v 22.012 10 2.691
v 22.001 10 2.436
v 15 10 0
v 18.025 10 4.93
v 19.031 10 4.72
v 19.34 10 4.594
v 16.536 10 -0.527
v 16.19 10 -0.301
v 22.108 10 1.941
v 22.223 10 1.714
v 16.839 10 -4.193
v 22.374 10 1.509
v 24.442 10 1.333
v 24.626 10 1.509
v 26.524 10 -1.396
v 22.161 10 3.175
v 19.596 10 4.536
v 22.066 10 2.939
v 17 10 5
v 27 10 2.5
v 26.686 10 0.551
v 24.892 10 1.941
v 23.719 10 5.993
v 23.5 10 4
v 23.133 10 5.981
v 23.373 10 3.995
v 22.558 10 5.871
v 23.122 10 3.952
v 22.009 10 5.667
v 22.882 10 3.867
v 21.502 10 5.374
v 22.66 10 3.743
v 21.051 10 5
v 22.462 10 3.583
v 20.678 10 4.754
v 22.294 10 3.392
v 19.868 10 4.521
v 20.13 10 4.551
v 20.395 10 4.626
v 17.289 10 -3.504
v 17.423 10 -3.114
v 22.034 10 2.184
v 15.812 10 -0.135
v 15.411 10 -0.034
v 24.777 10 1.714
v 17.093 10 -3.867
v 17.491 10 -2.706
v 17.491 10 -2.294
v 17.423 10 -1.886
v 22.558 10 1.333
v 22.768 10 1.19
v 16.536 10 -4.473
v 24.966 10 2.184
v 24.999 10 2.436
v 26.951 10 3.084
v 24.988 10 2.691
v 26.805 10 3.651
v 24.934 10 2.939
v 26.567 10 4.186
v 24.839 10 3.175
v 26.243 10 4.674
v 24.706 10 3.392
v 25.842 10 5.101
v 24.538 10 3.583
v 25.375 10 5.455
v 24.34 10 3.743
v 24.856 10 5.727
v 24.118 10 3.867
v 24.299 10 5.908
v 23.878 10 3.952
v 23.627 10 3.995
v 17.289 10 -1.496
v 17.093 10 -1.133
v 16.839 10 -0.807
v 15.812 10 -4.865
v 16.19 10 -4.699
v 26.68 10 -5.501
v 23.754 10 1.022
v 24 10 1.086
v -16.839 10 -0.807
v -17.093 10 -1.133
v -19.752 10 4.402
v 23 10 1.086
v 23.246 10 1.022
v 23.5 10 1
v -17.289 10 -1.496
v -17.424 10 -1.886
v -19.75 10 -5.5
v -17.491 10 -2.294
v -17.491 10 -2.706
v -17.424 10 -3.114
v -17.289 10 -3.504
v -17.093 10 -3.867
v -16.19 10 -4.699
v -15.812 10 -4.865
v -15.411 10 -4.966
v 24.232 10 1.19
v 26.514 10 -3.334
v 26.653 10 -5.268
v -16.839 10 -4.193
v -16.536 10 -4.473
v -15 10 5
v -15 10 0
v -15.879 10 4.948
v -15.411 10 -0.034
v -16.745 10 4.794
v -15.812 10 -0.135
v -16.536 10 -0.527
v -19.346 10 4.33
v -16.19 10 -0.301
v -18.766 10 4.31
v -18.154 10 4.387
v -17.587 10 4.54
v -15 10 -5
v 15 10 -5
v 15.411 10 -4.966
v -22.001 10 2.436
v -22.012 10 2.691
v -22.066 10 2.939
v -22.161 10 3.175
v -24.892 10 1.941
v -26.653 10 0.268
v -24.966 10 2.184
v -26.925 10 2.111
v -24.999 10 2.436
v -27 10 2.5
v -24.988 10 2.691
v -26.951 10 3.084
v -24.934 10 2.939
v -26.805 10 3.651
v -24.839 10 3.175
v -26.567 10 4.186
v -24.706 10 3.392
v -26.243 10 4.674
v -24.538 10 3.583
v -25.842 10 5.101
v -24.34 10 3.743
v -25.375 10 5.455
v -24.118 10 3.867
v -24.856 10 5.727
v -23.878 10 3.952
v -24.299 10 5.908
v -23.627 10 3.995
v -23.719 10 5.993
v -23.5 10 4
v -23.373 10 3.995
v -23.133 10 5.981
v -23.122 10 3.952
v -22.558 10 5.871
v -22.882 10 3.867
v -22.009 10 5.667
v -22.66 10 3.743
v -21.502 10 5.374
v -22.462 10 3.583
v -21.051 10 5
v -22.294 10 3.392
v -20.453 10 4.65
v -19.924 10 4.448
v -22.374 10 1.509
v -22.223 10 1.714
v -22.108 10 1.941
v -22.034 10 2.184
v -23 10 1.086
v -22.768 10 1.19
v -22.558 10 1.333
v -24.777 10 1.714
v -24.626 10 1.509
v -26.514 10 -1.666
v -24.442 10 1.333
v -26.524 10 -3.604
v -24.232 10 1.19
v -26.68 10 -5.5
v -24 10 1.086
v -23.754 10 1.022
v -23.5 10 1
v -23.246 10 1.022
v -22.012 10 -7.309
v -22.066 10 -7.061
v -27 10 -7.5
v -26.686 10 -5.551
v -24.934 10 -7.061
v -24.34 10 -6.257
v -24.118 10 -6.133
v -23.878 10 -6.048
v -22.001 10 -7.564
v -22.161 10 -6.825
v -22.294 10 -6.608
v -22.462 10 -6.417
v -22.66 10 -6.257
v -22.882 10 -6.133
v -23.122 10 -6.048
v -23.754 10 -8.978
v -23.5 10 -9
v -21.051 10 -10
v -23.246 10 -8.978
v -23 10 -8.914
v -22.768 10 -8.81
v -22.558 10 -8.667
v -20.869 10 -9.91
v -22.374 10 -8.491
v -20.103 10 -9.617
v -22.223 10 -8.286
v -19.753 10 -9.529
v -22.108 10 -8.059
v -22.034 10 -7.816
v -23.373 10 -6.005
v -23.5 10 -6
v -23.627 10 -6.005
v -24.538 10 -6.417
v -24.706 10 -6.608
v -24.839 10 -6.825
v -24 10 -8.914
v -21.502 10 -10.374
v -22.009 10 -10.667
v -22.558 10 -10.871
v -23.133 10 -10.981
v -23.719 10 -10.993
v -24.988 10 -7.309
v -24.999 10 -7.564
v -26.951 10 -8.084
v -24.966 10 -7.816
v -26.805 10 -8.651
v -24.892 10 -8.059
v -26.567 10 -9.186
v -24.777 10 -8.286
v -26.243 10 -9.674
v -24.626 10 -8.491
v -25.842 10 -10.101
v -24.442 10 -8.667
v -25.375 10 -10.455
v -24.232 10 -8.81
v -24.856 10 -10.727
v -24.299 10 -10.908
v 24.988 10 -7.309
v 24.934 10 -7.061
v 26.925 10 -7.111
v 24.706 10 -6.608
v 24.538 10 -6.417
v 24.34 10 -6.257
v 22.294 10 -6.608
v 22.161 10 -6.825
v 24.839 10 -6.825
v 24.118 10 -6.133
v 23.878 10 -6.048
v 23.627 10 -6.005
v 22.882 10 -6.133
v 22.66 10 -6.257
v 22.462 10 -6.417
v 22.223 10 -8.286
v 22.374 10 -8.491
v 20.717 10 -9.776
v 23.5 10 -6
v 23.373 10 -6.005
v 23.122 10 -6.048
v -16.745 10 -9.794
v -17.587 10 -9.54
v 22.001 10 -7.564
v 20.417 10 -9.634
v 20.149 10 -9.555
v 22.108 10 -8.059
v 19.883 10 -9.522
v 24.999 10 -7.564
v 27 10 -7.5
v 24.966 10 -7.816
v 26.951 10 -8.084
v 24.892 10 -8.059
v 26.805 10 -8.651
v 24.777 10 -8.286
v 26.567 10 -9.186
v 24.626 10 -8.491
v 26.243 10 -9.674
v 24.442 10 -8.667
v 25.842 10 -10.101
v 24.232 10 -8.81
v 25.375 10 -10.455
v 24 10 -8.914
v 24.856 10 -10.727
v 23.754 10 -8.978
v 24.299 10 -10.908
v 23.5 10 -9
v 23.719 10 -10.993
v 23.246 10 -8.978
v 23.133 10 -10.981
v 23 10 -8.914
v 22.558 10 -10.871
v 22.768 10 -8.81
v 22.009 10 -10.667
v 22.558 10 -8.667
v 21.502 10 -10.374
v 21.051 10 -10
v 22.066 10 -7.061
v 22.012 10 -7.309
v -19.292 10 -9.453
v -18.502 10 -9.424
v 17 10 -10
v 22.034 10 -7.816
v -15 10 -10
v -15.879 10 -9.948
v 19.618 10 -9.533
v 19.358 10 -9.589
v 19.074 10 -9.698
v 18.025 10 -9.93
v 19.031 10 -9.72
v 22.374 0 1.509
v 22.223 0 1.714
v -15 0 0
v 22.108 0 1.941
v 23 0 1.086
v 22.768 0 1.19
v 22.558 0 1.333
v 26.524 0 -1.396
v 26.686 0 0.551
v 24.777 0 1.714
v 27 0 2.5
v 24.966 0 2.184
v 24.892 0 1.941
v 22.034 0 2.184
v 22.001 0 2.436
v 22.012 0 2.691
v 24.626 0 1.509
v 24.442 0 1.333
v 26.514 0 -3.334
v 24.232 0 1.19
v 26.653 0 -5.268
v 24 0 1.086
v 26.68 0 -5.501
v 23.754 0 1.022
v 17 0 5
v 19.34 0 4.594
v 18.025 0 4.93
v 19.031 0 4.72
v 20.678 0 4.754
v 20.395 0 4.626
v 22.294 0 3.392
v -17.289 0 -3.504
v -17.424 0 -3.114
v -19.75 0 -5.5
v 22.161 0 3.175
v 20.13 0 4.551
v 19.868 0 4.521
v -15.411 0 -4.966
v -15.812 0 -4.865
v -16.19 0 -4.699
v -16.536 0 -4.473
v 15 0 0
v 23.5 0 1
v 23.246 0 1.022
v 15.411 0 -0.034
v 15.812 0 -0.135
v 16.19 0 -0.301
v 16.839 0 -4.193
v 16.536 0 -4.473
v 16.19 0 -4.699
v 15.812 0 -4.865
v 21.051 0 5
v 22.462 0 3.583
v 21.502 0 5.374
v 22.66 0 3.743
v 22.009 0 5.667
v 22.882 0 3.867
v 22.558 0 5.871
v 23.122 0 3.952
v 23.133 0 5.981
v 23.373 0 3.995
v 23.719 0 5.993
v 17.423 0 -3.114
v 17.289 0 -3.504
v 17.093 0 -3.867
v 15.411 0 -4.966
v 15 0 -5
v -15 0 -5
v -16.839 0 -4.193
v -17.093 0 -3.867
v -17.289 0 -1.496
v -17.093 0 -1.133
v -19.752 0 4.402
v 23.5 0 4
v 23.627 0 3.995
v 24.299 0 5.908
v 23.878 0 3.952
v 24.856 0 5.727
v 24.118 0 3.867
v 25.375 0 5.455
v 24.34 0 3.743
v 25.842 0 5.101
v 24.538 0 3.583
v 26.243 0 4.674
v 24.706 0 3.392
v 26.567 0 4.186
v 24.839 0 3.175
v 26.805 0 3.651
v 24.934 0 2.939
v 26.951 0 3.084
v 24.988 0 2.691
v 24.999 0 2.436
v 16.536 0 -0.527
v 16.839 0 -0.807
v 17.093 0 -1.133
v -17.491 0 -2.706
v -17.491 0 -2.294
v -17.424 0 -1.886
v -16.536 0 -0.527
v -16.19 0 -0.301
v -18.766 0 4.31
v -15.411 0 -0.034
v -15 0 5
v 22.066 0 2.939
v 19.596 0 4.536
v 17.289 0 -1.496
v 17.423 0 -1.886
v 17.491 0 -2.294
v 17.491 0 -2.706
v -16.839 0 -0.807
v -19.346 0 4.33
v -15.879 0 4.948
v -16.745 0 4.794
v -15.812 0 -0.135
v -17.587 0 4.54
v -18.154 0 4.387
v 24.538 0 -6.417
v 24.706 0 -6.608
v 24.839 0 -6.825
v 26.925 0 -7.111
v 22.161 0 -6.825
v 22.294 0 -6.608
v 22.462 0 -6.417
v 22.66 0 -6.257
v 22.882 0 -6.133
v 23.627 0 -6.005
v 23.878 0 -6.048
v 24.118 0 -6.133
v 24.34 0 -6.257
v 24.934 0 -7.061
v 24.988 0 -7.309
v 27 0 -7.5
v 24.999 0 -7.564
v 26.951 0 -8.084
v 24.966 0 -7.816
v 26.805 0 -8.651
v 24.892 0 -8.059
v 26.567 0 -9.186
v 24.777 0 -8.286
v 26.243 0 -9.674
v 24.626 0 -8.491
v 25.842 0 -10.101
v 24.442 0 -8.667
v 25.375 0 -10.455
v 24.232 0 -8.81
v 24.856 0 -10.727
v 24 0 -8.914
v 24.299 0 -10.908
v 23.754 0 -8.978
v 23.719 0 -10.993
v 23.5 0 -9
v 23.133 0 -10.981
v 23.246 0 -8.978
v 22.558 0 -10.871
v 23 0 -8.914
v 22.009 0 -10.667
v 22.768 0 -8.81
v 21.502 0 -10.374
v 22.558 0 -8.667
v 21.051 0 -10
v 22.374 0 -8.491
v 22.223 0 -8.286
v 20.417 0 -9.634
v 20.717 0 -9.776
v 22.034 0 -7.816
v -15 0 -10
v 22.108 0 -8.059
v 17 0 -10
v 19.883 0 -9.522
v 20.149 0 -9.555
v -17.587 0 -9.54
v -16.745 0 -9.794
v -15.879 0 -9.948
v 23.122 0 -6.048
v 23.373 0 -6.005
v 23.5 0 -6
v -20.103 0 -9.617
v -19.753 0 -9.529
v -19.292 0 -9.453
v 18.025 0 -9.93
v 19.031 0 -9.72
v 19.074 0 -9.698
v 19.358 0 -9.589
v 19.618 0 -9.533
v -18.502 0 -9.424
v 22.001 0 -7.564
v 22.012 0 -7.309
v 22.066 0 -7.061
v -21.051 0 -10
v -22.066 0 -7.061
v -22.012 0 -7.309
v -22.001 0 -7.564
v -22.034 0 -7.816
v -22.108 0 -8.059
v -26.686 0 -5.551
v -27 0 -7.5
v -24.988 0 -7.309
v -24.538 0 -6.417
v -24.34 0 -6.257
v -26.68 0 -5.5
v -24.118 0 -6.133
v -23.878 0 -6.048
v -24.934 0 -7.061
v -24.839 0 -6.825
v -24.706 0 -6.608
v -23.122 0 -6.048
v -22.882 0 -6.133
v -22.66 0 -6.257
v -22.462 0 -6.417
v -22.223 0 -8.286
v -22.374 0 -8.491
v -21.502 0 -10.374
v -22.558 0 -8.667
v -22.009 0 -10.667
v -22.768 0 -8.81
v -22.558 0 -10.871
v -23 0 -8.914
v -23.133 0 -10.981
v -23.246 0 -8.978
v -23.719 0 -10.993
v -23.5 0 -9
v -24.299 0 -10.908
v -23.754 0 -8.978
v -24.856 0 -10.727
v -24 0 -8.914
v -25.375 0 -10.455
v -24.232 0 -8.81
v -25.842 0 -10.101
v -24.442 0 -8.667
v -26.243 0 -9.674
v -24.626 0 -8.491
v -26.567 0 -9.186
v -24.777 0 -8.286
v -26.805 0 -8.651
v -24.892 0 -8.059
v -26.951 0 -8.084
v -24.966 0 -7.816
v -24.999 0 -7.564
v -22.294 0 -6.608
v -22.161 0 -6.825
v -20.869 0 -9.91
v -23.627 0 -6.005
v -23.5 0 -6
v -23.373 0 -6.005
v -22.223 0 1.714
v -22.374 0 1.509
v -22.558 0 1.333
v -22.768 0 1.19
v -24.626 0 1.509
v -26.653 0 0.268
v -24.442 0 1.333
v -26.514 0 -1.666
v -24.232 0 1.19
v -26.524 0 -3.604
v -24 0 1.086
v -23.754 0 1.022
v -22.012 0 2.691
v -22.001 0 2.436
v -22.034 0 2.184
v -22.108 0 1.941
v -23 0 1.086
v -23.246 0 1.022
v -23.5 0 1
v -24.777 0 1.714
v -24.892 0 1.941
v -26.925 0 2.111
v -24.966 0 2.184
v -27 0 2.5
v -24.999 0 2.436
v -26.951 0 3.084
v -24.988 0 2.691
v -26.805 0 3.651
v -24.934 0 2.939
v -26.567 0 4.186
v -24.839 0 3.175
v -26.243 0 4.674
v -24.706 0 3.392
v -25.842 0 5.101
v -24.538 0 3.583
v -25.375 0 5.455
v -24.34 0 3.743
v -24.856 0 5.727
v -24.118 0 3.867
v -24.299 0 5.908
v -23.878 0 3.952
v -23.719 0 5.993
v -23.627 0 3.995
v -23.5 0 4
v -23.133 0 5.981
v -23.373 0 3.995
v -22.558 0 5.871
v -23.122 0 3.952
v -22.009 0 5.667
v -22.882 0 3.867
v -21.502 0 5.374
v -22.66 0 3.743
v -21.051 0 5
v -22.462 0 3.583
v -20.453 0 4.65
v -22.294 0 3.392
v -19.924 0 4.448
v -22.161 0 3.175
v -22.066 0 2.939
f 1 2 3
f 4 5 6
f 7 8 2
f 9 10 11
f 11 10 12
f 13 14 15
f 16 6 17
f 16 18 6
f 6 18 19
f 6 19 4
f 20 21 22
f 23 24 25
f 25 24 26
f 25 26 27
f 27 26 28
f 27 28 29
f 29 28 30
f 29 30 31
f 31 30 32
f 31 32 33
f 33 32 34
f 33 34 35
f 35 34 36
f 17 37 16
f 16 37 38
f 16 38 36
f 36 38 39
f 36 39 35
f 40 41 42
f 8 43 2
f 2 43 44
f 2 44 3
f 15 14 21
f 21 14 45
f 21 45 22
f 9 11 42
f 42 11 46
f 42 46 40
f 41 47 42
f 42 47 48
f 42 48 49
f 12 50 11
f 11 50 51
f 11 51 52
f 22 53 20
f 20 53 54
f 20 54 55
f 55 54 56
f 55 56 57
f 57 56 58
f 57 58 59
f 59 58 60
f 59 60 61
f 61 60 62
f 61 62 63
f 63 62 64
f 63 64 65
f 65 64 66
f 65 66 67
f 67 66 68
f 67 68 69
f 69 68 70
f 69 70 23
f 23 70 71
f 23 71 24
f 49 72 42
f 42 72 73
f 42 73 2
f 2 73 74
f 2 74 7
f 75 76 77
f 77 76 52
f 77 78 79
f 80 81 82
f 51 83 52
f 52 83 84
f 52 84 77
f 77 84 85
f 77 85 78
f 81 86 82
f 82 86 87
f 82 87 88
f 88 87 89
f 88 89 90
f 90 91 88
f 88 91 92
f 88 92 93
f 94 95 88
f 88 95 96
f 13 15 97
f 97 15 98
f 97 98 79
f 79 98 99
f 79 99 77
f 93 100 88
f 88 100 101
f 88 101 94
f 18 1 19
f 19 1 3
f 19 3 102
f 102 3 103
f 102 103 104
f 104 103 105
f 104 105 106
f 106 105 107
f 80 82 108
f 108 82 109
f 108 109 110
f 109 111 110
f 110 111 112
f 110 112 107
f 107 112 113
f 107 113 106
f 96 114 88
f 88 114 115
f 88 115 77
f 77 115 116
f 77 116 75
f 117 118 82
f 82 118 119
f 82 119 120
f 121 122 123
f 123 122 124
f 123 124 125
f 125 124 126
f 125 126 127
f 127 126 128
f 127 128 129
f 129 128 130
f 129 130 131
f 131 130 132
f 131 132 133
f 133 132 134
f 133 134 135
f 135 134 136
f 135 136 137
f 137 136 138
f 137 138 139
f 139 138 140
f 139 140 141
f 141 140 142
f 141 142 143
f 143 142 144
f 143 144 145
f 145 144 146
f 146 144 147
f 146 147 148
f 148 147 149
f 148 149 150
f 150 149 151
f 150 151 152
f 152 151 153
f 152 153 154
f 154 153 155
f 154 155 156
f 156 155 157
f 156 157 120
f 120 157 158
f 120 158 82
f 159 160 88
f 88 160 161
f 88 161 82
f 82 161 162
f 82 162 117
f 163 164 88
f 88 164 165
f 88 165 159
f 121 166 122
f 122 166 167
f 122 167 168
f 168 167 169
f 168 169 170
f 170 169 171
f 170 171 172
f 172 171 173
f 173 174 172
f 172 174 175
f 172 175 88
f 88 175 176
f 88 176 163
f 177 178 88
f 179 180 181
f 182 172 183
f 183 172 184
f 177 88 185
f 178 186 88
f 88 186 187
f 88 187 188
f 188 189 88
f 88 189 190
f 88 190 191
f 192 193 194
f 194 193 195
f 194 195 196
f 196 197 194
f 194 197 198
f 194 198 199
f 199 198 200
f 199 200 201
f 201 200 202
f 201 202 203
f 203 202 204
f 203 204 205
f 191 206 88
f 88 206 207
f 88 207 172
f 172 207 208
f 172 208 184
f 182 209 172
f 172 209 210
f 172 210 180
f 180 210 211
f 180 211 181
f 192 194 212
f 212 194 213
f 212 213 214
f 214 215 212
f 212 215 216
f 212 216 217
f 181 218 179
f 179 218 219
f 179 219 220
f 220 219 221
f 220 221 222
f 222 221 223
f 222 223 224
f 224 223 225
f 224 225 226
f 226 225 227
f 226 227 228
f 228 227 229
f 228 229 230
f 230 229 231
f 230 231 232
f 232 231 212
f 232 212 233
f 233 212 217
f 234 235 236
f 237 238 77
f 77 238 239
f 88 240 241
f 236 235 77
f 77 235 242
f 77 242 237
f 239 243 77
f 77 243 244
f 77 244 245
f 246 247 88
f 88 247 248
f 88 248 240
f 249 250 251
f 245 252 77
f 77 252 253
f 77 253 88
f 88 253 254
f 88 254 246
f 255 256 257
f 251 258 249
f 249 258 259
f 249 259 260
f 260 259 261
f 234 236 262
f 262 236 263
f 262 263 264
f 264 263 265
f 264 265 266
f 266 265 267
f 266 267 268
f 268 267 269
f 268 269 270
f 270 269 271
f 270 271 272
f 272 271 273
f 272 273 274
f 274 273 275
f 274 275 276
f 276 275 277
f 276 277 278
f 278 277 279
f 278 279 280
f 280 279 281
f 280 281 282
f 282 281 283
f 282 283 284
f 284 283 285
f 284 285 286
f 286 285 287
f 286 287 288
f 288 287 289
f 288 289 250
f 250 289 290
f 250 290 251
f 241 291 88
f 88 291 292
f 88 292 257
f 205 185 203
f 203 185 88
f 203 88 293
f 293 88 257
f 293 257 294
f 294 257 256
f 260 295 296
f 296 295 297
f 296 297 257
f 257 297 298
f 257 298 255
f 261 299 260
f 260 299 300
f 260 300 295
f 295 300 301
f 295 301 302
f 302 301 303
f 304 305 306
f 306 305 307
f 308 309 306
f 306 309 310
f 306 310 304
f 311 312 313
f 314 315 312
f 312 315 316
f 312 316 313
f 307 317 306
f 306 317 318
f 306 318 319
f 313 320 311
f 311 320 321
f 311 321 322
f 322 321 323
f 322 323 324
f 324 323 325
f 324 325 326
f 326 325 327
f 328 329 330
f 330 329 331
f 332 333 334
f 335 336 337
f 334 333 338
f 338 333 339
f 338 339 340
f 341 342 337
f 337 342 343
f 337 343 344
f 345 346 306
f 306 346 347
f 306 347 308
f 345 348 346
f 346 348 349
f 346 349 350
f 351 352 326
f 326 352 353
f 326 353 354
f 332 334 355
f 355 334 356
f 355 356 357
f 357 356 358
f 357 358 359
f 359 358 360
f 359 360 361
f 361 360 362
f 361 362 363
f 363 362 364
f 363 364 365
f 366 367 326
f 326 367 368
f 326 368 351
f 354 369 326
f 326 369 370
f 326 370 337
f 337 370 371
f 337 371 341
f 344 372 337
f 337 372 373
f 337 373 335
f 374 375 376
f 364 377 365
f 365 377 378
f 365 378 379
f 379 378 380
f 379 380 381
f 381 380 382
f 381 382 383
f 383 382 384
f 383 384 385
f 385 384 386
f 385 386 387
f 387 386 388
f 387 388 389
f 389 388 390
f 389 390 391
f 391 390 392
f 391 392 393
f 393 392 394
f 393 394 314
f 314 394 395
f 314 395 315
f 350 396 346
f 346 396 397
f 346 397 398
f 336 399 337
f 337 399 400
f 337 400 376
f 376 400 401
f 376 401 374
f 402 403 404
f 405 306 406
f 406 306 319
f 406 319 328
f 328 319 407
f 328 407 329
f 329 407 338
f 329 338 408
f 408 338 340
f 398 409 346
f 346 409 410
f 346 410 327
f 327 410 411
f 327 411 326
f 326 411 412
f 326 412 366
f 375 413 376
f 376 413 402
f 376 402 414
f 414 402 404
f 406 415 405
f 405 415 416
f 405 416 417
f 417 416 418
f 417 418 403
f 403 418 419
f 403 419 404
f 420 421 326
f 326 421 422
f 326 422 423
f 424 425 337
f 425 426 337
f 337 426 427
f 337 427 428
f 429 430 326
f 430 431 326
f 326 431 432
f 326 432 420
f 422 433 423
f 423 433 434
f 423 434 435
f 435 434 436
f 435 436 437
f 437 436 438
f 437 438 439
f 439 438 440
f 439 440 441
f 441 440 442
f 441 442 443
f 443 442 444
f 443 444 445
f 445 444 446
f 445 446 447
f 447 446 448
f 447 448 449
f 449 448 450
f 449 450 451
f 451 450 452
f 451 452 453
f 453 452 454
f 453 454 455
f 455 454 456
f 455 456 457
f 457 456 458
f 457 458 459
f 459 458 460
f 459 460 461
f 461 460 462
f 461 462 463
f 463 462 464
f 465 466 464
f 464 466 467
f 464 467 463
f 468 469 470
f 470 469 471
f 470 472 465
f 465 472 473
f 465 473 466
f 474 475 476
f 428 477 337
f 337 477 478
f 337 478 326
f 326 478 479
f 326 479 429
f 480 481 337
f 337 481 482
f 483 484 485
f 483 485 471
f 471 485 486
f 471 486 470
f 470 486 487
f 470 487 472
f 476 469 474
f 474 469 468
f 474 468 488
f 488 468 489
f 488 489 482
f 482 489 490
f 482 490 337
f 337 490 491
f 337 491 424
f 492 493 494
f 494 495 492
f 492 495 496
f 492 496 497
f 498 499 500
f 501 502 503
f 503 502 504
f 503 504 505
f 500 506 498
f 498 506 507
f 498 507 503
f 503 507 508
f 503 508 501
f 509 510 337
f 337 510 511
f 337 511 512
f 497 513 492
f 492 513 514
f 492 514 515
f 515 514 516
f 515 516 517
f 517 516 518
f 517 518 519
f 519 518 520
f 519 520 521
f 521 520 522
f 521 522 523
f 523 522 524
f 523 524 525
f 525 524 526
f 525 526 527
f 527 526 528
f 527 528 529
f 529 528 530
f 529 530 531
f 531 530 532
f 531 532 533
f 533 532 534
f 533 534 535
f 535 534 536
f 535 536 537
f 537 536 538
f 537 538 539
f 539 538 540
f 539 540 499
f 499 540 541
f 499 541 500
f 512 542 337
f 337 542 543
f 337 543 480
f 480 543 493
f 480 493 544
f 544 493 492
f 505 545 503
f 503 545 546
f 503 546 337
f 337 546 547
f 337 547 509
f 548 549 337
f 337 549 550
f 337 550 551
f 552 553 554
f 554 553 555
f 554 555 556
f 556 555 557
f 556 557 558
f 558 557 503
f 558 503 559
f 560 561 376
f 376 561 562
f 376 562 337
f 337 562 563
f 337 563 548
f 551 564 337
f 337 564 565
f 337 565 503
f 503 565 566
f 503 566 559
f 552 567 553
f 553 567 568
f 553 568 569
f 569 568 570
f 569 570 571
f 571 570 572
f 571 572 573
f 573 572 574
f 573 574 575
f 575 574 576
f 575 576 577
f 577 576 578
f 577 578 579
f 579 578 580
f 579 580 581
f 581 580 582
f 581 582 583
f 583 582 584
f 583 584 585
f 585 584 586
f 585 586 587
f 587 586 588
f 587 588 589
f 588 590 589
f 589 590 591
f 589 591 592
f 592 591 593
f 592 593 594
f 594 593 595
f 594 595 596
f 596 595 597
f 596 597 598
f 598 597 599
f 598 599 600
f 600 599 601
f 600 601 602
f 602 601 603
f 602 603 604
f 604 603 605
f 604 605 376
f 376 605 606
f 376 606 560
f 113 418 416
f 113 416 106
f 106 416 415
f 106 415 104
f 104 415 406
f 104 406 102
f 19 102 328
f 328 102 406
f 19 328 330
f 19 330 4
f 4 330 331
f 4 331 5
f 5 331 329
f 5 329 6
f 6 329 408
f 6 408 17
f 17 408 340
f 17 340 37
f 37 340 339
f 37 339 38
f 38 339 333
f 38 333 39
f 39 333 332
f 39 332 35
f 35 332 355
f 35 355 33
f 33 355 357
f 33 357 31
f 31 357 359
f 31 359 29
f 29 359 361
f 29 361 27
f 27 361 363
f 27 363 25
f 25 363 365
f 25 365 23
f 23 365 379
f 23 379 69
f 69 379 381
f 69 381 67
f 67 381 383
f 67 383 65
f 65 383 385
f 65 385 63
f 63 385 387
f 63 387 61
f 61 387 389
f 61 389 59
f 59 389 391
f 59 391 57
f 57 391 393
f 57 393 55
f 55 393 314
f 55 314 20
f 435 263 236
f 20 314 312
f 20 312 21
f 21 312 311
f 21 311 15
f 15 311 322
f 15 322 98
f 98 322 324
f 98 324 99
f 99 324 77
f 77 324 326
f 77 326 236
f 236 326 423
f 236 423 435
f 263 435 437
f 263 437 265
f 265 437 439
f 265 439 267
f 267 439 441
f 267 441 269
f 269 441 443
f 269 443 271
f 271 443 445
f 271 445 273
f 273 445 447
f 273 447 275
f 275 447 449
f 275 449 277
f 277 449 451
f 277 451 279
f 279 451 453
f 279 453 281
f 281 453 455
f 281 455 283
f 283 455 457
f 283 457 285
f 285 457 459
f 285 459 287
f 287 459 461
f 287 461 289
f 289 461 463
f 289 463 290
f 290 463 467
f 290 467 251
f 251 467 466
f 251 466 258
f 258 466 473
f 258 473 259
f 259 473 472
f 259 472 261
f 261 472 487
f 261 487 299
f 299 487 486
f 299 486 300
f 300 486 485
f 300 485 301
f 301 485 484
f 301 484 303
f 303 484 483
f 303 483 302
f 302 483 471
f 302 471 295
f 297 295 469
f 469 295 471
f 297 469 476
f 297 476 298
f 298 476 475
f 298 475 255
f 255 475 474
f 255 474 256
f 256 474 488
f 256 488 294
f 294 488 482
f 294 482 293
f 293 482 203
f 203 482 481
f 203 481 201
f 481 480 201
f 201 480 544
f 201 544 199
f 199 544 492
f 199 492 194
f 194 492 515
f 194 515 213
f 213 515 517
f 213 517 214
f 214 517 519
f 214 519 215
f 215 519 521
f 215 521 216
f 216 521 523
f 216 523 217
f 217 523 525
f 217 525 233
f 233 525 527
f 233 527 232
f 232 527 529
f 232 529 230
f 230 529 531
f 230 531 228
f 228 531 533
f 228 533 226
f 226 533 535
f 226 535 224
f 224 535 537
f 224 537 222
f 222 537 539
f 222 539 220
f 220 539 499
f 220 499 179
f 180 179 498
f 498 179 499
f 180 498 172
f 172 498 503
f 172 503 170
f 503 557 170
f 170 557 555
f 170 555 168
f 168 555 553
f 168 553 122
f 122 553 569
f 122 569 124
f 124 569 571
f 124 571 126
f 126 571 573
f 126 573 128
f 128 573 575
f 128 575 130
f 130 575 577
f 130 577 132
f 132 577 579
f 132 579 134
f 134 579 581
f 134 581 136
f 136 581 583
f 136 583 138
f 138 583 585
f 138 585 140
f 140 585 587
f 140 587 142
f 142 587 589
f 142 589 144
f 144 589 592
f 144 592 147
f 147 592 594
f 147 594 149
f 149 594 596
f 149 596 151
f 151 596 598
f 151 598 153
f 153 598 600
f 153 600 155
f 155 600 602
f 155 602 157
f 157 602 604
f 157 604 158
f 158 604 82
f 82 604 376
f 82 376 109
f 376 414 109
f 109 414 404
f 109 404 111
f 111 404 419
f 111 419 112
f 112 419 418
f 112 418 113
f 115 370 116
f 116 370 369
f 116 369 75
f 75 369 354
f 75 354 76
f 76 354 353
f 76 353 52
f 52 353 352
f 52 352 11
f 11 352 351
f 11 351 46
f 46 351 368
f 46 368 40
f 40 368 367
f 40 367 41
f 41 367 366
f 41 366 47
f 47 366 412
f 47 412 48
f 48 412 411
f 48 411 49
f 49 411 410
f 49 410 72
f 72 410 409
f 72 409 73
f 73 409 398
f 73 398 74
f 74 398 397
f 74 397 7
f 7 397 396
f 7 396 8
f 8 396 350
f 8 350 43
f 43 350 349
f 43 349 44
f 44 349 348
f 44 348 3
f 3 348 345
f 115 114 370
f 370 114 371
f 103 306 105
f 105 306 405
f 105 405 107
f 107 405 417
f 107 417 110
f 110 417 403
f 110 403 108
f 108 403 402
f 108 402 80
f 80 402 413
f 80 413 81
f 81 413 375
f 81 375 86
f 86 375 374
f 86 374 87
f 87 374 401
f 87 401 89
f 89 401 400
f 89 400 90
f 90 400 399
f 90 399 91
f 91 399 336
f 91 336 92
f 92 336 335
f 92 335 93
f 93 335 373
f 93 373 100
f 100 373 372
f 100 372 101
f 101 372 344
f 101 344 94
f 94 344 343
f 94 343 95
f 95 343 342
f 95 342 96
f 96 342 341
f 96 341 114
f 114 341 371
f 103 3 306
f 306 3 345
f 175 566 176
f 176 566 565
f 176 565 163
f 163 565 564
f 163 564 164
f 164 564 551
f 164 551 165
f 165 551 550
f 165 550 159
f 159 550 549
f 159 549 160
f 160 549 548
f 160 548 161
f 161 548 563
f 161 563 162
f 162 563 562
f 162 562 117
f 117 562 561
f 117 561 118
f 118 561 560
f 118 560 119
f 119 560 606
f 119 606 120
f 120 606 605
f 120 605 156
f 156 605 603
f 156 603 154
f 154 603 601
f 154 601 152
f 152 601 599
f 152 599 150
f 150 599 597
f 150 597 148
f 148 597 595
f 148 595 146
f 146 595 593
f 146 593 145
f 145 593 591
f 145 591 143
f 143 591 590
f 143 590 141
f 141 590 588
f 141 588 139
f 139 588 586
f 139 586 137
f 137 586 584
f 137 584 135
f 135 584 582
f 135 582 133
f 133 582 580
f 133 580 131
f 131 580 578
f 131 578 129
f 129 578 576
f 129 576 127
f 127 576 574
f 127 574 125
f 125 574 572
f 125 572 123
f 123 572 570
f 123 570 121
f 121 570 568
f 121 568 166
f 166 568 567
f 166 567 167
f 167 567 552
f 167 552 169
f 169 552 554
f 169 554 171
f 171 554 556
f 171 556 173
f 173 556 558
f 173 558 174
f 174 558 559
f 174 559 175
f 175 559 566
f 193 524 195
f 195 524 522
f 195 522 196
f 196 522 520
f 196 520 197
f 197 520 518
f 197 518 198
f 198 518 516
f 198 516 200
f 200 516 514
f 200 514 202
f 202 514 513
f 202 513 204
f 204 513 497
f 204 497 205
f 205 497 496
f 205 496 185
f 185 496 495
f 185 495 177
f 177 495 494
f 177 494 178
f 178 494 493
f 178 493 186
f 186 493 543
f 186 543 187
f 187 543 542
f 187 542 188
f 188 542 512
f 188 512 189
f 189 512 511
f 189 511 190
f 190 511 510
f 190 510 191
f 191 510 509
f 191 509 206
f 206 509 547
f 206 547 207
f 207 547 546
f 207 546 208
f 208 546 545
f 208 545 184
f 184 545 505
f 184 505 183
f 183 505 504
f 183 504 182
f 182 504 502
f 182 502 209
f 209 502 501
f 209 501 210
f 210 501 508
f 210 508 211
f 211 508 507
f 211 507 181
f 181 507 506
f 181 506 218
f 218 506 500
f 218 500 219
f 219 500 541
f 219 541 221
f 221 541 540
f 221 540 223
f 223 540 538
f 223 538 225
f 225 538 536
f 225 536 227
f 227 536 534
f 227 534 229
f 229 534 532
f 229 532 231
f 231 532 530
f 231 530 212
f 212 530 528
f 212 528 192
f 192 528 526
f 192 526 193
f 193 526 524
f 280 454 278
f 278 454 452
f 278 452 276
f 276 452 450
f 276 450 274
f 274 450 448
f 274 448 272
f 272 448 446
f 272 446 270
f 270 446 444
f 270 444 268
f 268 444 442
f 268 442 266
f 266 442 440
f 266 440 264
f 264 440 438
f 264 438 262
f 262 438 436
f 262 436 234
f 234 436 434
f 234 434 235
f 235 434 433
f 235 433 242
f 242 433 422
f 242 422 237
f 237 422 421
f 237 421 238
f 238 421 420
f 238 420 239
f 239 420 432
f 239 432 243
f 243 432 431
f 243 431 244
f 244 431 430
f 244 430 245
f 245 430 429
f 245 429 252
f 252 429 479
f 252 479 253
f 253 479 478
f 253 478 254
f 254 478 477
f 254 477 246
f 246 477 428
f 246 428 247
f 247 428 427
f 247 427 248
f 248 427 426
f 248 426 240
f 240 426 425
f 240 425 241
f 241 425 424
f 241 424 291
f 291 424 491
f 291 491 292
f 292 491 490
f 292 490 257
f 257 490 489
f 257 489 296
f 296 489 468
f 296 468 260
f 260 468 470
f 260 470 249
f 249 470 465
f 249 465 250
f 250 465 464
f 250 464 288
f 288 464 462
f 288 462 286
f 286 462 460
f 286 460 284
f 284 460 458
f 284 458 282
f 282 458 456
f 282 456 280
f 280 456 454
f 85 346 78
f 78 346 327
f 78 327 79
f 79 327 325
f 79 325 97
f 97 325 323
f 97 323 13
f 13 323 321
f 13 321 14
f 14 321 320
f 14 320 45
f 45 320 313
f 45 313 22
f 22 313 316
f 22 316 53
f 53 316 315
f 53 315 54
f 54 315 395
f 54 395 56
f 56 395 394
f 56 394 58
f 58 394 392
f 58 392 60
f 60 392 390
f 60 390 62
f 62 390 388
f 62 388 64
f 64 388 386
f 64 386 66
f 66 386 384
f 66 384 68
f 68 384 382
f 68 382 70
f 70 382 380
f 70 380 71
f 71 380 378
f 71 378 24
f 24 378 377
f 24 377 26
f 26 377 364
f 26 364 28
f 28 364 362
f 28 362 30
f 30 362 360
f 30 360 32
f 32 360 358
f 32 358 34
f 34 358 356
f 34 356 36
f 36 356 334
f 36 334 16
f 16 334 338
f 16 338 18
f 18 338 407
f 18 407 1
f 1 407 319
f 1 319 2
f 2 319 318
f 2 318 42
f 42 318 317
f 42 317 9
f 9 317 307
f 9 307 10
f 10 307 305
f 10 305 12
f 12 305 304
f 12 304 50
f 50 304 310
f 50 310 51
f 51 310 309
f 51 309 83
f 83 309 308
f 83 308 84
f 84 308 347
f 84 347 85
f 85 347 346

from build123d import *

# Parameters (mm, degrees)
SZKIC1_R                    = 1.5
DODANIE_WYCI_GNI_CIE1_DEPTH = 10


with BuildPart() as part:
    # Szkic1 → Dodanie-wyciągnięcie1 (new body)
    with BuildSketch(Plane(origin=(0, 0, 0), x_dir=(1, 0, 0), z_dir=(0, 1, 0))):
        with BuildLine():
            Line((-15, -5), (17, -5))
            ThreePointArc((17, -5), (18.0250496, -4.929621344), (19.030861437, -4.719806218))
            add(Edge.make_bspline(
                [(21.050510257, -5), (20.034983278, -4.211064237), (19.030861437, -4.719806218)],
                knots=[0, 0, 0, 1, 1, 1], degree=2))
            ThreePointArc((21.050510257, -5), (24.855873501, -5.726702194), (27, -2.5))
            add(Edge.make_bspline(
                [(27, -2.5), (26, 2.5), (27, 7.5)],
                knots=[0, 0, 0, 1, 1, 1], degree=2))
            ThreePointArc((27, 7.5), (24.855873501, 10.726702194), (21.050510257, 10))
            add(Edge.make_bspline(
                [(21.050510257, 10), (20.034983278, 9.211064237), (19.030861437, 9.719806218)],
                knots=[0, 0, 0, 1, 1, 1], degree=2))
            ThreePointArc((19.030861437, 9.719806218), (18.0250496, 9.929621344), (17, 10))
            Line((17, 10), (-15, 10))
            ThreePointArc((-15, 10), (-16.314029759, 9.883991183), (-17.587409108, 9.539553545))
            add(Edge.make_bspline(
                [(-21.050510257, 10), (-19.428457916, 9.156413681), (-17.587409108, 9.539553545)],
                knots=[0, 0, 0, 1, 1, 1], degree=2))
            ThreePointArc((-21.050510257, 10), (-24.855873501, 10.726702194), (-27, 7.5))
            add(Edge.make_bspline(
                [(-27, 7.5), (-26, 2.5), (-27, -2.5)],
                knots=[0, 0, 0, 1, 1, 1], degree=2))
            ThreePointArc((-27, -2.5), (-24.855873501, -5.726702194), (-21.050510257, -5))
            add(Edge.make_bspline(
                [(-21.050510257, -5), (-19.486480964, -3.903838013), (-17.587409108, -4.539553545)],
                knots=[0, 0, 0, 1, 1, 1], degree=2))
            ThreePointArc((-17.587409108, -4.539553545), (-16.314029759, -4.883991183), (-15, -5))
        make_face()
        with Locations(Location((-23.5, -2.5, 0), (0, 0, 270))):
            Circle(SZKIC1_R, mode=Mode.SUBTRACT)
        with Locations(Location((-23.5, 7.5, 0), (0, 0, 270))):
            Circle(SZKIC1_R, mode=Mode.SUBTRACT)
        with Locations(Location((23.5, 7.5, 0), (0, 0, 270))):
            Circle(SZKIC1_R, mode=Mode.SUBTRACT)
        with Locations(Location((23.5, -2.5, 0), (0, 0, 270))):
            Circle(SZKIC1_R, mode=Mode.SUBTRACT)
        with BuildLine():
            Line((-15, 0), (15, 0))
            ThreePointArc((15, 0), (17.5, 2.5), (15, 5))
            Line((15, 5), (-15, 5))
            ThreePointArc((-15, 5), (-17.5, 2.5), (-15, 0))
        make_face(mode=Mode.SUBTRACT)
    extrude(amount=DODANIE_WYCI_GNI_CIE1_DEPTH)


solid = part.part
